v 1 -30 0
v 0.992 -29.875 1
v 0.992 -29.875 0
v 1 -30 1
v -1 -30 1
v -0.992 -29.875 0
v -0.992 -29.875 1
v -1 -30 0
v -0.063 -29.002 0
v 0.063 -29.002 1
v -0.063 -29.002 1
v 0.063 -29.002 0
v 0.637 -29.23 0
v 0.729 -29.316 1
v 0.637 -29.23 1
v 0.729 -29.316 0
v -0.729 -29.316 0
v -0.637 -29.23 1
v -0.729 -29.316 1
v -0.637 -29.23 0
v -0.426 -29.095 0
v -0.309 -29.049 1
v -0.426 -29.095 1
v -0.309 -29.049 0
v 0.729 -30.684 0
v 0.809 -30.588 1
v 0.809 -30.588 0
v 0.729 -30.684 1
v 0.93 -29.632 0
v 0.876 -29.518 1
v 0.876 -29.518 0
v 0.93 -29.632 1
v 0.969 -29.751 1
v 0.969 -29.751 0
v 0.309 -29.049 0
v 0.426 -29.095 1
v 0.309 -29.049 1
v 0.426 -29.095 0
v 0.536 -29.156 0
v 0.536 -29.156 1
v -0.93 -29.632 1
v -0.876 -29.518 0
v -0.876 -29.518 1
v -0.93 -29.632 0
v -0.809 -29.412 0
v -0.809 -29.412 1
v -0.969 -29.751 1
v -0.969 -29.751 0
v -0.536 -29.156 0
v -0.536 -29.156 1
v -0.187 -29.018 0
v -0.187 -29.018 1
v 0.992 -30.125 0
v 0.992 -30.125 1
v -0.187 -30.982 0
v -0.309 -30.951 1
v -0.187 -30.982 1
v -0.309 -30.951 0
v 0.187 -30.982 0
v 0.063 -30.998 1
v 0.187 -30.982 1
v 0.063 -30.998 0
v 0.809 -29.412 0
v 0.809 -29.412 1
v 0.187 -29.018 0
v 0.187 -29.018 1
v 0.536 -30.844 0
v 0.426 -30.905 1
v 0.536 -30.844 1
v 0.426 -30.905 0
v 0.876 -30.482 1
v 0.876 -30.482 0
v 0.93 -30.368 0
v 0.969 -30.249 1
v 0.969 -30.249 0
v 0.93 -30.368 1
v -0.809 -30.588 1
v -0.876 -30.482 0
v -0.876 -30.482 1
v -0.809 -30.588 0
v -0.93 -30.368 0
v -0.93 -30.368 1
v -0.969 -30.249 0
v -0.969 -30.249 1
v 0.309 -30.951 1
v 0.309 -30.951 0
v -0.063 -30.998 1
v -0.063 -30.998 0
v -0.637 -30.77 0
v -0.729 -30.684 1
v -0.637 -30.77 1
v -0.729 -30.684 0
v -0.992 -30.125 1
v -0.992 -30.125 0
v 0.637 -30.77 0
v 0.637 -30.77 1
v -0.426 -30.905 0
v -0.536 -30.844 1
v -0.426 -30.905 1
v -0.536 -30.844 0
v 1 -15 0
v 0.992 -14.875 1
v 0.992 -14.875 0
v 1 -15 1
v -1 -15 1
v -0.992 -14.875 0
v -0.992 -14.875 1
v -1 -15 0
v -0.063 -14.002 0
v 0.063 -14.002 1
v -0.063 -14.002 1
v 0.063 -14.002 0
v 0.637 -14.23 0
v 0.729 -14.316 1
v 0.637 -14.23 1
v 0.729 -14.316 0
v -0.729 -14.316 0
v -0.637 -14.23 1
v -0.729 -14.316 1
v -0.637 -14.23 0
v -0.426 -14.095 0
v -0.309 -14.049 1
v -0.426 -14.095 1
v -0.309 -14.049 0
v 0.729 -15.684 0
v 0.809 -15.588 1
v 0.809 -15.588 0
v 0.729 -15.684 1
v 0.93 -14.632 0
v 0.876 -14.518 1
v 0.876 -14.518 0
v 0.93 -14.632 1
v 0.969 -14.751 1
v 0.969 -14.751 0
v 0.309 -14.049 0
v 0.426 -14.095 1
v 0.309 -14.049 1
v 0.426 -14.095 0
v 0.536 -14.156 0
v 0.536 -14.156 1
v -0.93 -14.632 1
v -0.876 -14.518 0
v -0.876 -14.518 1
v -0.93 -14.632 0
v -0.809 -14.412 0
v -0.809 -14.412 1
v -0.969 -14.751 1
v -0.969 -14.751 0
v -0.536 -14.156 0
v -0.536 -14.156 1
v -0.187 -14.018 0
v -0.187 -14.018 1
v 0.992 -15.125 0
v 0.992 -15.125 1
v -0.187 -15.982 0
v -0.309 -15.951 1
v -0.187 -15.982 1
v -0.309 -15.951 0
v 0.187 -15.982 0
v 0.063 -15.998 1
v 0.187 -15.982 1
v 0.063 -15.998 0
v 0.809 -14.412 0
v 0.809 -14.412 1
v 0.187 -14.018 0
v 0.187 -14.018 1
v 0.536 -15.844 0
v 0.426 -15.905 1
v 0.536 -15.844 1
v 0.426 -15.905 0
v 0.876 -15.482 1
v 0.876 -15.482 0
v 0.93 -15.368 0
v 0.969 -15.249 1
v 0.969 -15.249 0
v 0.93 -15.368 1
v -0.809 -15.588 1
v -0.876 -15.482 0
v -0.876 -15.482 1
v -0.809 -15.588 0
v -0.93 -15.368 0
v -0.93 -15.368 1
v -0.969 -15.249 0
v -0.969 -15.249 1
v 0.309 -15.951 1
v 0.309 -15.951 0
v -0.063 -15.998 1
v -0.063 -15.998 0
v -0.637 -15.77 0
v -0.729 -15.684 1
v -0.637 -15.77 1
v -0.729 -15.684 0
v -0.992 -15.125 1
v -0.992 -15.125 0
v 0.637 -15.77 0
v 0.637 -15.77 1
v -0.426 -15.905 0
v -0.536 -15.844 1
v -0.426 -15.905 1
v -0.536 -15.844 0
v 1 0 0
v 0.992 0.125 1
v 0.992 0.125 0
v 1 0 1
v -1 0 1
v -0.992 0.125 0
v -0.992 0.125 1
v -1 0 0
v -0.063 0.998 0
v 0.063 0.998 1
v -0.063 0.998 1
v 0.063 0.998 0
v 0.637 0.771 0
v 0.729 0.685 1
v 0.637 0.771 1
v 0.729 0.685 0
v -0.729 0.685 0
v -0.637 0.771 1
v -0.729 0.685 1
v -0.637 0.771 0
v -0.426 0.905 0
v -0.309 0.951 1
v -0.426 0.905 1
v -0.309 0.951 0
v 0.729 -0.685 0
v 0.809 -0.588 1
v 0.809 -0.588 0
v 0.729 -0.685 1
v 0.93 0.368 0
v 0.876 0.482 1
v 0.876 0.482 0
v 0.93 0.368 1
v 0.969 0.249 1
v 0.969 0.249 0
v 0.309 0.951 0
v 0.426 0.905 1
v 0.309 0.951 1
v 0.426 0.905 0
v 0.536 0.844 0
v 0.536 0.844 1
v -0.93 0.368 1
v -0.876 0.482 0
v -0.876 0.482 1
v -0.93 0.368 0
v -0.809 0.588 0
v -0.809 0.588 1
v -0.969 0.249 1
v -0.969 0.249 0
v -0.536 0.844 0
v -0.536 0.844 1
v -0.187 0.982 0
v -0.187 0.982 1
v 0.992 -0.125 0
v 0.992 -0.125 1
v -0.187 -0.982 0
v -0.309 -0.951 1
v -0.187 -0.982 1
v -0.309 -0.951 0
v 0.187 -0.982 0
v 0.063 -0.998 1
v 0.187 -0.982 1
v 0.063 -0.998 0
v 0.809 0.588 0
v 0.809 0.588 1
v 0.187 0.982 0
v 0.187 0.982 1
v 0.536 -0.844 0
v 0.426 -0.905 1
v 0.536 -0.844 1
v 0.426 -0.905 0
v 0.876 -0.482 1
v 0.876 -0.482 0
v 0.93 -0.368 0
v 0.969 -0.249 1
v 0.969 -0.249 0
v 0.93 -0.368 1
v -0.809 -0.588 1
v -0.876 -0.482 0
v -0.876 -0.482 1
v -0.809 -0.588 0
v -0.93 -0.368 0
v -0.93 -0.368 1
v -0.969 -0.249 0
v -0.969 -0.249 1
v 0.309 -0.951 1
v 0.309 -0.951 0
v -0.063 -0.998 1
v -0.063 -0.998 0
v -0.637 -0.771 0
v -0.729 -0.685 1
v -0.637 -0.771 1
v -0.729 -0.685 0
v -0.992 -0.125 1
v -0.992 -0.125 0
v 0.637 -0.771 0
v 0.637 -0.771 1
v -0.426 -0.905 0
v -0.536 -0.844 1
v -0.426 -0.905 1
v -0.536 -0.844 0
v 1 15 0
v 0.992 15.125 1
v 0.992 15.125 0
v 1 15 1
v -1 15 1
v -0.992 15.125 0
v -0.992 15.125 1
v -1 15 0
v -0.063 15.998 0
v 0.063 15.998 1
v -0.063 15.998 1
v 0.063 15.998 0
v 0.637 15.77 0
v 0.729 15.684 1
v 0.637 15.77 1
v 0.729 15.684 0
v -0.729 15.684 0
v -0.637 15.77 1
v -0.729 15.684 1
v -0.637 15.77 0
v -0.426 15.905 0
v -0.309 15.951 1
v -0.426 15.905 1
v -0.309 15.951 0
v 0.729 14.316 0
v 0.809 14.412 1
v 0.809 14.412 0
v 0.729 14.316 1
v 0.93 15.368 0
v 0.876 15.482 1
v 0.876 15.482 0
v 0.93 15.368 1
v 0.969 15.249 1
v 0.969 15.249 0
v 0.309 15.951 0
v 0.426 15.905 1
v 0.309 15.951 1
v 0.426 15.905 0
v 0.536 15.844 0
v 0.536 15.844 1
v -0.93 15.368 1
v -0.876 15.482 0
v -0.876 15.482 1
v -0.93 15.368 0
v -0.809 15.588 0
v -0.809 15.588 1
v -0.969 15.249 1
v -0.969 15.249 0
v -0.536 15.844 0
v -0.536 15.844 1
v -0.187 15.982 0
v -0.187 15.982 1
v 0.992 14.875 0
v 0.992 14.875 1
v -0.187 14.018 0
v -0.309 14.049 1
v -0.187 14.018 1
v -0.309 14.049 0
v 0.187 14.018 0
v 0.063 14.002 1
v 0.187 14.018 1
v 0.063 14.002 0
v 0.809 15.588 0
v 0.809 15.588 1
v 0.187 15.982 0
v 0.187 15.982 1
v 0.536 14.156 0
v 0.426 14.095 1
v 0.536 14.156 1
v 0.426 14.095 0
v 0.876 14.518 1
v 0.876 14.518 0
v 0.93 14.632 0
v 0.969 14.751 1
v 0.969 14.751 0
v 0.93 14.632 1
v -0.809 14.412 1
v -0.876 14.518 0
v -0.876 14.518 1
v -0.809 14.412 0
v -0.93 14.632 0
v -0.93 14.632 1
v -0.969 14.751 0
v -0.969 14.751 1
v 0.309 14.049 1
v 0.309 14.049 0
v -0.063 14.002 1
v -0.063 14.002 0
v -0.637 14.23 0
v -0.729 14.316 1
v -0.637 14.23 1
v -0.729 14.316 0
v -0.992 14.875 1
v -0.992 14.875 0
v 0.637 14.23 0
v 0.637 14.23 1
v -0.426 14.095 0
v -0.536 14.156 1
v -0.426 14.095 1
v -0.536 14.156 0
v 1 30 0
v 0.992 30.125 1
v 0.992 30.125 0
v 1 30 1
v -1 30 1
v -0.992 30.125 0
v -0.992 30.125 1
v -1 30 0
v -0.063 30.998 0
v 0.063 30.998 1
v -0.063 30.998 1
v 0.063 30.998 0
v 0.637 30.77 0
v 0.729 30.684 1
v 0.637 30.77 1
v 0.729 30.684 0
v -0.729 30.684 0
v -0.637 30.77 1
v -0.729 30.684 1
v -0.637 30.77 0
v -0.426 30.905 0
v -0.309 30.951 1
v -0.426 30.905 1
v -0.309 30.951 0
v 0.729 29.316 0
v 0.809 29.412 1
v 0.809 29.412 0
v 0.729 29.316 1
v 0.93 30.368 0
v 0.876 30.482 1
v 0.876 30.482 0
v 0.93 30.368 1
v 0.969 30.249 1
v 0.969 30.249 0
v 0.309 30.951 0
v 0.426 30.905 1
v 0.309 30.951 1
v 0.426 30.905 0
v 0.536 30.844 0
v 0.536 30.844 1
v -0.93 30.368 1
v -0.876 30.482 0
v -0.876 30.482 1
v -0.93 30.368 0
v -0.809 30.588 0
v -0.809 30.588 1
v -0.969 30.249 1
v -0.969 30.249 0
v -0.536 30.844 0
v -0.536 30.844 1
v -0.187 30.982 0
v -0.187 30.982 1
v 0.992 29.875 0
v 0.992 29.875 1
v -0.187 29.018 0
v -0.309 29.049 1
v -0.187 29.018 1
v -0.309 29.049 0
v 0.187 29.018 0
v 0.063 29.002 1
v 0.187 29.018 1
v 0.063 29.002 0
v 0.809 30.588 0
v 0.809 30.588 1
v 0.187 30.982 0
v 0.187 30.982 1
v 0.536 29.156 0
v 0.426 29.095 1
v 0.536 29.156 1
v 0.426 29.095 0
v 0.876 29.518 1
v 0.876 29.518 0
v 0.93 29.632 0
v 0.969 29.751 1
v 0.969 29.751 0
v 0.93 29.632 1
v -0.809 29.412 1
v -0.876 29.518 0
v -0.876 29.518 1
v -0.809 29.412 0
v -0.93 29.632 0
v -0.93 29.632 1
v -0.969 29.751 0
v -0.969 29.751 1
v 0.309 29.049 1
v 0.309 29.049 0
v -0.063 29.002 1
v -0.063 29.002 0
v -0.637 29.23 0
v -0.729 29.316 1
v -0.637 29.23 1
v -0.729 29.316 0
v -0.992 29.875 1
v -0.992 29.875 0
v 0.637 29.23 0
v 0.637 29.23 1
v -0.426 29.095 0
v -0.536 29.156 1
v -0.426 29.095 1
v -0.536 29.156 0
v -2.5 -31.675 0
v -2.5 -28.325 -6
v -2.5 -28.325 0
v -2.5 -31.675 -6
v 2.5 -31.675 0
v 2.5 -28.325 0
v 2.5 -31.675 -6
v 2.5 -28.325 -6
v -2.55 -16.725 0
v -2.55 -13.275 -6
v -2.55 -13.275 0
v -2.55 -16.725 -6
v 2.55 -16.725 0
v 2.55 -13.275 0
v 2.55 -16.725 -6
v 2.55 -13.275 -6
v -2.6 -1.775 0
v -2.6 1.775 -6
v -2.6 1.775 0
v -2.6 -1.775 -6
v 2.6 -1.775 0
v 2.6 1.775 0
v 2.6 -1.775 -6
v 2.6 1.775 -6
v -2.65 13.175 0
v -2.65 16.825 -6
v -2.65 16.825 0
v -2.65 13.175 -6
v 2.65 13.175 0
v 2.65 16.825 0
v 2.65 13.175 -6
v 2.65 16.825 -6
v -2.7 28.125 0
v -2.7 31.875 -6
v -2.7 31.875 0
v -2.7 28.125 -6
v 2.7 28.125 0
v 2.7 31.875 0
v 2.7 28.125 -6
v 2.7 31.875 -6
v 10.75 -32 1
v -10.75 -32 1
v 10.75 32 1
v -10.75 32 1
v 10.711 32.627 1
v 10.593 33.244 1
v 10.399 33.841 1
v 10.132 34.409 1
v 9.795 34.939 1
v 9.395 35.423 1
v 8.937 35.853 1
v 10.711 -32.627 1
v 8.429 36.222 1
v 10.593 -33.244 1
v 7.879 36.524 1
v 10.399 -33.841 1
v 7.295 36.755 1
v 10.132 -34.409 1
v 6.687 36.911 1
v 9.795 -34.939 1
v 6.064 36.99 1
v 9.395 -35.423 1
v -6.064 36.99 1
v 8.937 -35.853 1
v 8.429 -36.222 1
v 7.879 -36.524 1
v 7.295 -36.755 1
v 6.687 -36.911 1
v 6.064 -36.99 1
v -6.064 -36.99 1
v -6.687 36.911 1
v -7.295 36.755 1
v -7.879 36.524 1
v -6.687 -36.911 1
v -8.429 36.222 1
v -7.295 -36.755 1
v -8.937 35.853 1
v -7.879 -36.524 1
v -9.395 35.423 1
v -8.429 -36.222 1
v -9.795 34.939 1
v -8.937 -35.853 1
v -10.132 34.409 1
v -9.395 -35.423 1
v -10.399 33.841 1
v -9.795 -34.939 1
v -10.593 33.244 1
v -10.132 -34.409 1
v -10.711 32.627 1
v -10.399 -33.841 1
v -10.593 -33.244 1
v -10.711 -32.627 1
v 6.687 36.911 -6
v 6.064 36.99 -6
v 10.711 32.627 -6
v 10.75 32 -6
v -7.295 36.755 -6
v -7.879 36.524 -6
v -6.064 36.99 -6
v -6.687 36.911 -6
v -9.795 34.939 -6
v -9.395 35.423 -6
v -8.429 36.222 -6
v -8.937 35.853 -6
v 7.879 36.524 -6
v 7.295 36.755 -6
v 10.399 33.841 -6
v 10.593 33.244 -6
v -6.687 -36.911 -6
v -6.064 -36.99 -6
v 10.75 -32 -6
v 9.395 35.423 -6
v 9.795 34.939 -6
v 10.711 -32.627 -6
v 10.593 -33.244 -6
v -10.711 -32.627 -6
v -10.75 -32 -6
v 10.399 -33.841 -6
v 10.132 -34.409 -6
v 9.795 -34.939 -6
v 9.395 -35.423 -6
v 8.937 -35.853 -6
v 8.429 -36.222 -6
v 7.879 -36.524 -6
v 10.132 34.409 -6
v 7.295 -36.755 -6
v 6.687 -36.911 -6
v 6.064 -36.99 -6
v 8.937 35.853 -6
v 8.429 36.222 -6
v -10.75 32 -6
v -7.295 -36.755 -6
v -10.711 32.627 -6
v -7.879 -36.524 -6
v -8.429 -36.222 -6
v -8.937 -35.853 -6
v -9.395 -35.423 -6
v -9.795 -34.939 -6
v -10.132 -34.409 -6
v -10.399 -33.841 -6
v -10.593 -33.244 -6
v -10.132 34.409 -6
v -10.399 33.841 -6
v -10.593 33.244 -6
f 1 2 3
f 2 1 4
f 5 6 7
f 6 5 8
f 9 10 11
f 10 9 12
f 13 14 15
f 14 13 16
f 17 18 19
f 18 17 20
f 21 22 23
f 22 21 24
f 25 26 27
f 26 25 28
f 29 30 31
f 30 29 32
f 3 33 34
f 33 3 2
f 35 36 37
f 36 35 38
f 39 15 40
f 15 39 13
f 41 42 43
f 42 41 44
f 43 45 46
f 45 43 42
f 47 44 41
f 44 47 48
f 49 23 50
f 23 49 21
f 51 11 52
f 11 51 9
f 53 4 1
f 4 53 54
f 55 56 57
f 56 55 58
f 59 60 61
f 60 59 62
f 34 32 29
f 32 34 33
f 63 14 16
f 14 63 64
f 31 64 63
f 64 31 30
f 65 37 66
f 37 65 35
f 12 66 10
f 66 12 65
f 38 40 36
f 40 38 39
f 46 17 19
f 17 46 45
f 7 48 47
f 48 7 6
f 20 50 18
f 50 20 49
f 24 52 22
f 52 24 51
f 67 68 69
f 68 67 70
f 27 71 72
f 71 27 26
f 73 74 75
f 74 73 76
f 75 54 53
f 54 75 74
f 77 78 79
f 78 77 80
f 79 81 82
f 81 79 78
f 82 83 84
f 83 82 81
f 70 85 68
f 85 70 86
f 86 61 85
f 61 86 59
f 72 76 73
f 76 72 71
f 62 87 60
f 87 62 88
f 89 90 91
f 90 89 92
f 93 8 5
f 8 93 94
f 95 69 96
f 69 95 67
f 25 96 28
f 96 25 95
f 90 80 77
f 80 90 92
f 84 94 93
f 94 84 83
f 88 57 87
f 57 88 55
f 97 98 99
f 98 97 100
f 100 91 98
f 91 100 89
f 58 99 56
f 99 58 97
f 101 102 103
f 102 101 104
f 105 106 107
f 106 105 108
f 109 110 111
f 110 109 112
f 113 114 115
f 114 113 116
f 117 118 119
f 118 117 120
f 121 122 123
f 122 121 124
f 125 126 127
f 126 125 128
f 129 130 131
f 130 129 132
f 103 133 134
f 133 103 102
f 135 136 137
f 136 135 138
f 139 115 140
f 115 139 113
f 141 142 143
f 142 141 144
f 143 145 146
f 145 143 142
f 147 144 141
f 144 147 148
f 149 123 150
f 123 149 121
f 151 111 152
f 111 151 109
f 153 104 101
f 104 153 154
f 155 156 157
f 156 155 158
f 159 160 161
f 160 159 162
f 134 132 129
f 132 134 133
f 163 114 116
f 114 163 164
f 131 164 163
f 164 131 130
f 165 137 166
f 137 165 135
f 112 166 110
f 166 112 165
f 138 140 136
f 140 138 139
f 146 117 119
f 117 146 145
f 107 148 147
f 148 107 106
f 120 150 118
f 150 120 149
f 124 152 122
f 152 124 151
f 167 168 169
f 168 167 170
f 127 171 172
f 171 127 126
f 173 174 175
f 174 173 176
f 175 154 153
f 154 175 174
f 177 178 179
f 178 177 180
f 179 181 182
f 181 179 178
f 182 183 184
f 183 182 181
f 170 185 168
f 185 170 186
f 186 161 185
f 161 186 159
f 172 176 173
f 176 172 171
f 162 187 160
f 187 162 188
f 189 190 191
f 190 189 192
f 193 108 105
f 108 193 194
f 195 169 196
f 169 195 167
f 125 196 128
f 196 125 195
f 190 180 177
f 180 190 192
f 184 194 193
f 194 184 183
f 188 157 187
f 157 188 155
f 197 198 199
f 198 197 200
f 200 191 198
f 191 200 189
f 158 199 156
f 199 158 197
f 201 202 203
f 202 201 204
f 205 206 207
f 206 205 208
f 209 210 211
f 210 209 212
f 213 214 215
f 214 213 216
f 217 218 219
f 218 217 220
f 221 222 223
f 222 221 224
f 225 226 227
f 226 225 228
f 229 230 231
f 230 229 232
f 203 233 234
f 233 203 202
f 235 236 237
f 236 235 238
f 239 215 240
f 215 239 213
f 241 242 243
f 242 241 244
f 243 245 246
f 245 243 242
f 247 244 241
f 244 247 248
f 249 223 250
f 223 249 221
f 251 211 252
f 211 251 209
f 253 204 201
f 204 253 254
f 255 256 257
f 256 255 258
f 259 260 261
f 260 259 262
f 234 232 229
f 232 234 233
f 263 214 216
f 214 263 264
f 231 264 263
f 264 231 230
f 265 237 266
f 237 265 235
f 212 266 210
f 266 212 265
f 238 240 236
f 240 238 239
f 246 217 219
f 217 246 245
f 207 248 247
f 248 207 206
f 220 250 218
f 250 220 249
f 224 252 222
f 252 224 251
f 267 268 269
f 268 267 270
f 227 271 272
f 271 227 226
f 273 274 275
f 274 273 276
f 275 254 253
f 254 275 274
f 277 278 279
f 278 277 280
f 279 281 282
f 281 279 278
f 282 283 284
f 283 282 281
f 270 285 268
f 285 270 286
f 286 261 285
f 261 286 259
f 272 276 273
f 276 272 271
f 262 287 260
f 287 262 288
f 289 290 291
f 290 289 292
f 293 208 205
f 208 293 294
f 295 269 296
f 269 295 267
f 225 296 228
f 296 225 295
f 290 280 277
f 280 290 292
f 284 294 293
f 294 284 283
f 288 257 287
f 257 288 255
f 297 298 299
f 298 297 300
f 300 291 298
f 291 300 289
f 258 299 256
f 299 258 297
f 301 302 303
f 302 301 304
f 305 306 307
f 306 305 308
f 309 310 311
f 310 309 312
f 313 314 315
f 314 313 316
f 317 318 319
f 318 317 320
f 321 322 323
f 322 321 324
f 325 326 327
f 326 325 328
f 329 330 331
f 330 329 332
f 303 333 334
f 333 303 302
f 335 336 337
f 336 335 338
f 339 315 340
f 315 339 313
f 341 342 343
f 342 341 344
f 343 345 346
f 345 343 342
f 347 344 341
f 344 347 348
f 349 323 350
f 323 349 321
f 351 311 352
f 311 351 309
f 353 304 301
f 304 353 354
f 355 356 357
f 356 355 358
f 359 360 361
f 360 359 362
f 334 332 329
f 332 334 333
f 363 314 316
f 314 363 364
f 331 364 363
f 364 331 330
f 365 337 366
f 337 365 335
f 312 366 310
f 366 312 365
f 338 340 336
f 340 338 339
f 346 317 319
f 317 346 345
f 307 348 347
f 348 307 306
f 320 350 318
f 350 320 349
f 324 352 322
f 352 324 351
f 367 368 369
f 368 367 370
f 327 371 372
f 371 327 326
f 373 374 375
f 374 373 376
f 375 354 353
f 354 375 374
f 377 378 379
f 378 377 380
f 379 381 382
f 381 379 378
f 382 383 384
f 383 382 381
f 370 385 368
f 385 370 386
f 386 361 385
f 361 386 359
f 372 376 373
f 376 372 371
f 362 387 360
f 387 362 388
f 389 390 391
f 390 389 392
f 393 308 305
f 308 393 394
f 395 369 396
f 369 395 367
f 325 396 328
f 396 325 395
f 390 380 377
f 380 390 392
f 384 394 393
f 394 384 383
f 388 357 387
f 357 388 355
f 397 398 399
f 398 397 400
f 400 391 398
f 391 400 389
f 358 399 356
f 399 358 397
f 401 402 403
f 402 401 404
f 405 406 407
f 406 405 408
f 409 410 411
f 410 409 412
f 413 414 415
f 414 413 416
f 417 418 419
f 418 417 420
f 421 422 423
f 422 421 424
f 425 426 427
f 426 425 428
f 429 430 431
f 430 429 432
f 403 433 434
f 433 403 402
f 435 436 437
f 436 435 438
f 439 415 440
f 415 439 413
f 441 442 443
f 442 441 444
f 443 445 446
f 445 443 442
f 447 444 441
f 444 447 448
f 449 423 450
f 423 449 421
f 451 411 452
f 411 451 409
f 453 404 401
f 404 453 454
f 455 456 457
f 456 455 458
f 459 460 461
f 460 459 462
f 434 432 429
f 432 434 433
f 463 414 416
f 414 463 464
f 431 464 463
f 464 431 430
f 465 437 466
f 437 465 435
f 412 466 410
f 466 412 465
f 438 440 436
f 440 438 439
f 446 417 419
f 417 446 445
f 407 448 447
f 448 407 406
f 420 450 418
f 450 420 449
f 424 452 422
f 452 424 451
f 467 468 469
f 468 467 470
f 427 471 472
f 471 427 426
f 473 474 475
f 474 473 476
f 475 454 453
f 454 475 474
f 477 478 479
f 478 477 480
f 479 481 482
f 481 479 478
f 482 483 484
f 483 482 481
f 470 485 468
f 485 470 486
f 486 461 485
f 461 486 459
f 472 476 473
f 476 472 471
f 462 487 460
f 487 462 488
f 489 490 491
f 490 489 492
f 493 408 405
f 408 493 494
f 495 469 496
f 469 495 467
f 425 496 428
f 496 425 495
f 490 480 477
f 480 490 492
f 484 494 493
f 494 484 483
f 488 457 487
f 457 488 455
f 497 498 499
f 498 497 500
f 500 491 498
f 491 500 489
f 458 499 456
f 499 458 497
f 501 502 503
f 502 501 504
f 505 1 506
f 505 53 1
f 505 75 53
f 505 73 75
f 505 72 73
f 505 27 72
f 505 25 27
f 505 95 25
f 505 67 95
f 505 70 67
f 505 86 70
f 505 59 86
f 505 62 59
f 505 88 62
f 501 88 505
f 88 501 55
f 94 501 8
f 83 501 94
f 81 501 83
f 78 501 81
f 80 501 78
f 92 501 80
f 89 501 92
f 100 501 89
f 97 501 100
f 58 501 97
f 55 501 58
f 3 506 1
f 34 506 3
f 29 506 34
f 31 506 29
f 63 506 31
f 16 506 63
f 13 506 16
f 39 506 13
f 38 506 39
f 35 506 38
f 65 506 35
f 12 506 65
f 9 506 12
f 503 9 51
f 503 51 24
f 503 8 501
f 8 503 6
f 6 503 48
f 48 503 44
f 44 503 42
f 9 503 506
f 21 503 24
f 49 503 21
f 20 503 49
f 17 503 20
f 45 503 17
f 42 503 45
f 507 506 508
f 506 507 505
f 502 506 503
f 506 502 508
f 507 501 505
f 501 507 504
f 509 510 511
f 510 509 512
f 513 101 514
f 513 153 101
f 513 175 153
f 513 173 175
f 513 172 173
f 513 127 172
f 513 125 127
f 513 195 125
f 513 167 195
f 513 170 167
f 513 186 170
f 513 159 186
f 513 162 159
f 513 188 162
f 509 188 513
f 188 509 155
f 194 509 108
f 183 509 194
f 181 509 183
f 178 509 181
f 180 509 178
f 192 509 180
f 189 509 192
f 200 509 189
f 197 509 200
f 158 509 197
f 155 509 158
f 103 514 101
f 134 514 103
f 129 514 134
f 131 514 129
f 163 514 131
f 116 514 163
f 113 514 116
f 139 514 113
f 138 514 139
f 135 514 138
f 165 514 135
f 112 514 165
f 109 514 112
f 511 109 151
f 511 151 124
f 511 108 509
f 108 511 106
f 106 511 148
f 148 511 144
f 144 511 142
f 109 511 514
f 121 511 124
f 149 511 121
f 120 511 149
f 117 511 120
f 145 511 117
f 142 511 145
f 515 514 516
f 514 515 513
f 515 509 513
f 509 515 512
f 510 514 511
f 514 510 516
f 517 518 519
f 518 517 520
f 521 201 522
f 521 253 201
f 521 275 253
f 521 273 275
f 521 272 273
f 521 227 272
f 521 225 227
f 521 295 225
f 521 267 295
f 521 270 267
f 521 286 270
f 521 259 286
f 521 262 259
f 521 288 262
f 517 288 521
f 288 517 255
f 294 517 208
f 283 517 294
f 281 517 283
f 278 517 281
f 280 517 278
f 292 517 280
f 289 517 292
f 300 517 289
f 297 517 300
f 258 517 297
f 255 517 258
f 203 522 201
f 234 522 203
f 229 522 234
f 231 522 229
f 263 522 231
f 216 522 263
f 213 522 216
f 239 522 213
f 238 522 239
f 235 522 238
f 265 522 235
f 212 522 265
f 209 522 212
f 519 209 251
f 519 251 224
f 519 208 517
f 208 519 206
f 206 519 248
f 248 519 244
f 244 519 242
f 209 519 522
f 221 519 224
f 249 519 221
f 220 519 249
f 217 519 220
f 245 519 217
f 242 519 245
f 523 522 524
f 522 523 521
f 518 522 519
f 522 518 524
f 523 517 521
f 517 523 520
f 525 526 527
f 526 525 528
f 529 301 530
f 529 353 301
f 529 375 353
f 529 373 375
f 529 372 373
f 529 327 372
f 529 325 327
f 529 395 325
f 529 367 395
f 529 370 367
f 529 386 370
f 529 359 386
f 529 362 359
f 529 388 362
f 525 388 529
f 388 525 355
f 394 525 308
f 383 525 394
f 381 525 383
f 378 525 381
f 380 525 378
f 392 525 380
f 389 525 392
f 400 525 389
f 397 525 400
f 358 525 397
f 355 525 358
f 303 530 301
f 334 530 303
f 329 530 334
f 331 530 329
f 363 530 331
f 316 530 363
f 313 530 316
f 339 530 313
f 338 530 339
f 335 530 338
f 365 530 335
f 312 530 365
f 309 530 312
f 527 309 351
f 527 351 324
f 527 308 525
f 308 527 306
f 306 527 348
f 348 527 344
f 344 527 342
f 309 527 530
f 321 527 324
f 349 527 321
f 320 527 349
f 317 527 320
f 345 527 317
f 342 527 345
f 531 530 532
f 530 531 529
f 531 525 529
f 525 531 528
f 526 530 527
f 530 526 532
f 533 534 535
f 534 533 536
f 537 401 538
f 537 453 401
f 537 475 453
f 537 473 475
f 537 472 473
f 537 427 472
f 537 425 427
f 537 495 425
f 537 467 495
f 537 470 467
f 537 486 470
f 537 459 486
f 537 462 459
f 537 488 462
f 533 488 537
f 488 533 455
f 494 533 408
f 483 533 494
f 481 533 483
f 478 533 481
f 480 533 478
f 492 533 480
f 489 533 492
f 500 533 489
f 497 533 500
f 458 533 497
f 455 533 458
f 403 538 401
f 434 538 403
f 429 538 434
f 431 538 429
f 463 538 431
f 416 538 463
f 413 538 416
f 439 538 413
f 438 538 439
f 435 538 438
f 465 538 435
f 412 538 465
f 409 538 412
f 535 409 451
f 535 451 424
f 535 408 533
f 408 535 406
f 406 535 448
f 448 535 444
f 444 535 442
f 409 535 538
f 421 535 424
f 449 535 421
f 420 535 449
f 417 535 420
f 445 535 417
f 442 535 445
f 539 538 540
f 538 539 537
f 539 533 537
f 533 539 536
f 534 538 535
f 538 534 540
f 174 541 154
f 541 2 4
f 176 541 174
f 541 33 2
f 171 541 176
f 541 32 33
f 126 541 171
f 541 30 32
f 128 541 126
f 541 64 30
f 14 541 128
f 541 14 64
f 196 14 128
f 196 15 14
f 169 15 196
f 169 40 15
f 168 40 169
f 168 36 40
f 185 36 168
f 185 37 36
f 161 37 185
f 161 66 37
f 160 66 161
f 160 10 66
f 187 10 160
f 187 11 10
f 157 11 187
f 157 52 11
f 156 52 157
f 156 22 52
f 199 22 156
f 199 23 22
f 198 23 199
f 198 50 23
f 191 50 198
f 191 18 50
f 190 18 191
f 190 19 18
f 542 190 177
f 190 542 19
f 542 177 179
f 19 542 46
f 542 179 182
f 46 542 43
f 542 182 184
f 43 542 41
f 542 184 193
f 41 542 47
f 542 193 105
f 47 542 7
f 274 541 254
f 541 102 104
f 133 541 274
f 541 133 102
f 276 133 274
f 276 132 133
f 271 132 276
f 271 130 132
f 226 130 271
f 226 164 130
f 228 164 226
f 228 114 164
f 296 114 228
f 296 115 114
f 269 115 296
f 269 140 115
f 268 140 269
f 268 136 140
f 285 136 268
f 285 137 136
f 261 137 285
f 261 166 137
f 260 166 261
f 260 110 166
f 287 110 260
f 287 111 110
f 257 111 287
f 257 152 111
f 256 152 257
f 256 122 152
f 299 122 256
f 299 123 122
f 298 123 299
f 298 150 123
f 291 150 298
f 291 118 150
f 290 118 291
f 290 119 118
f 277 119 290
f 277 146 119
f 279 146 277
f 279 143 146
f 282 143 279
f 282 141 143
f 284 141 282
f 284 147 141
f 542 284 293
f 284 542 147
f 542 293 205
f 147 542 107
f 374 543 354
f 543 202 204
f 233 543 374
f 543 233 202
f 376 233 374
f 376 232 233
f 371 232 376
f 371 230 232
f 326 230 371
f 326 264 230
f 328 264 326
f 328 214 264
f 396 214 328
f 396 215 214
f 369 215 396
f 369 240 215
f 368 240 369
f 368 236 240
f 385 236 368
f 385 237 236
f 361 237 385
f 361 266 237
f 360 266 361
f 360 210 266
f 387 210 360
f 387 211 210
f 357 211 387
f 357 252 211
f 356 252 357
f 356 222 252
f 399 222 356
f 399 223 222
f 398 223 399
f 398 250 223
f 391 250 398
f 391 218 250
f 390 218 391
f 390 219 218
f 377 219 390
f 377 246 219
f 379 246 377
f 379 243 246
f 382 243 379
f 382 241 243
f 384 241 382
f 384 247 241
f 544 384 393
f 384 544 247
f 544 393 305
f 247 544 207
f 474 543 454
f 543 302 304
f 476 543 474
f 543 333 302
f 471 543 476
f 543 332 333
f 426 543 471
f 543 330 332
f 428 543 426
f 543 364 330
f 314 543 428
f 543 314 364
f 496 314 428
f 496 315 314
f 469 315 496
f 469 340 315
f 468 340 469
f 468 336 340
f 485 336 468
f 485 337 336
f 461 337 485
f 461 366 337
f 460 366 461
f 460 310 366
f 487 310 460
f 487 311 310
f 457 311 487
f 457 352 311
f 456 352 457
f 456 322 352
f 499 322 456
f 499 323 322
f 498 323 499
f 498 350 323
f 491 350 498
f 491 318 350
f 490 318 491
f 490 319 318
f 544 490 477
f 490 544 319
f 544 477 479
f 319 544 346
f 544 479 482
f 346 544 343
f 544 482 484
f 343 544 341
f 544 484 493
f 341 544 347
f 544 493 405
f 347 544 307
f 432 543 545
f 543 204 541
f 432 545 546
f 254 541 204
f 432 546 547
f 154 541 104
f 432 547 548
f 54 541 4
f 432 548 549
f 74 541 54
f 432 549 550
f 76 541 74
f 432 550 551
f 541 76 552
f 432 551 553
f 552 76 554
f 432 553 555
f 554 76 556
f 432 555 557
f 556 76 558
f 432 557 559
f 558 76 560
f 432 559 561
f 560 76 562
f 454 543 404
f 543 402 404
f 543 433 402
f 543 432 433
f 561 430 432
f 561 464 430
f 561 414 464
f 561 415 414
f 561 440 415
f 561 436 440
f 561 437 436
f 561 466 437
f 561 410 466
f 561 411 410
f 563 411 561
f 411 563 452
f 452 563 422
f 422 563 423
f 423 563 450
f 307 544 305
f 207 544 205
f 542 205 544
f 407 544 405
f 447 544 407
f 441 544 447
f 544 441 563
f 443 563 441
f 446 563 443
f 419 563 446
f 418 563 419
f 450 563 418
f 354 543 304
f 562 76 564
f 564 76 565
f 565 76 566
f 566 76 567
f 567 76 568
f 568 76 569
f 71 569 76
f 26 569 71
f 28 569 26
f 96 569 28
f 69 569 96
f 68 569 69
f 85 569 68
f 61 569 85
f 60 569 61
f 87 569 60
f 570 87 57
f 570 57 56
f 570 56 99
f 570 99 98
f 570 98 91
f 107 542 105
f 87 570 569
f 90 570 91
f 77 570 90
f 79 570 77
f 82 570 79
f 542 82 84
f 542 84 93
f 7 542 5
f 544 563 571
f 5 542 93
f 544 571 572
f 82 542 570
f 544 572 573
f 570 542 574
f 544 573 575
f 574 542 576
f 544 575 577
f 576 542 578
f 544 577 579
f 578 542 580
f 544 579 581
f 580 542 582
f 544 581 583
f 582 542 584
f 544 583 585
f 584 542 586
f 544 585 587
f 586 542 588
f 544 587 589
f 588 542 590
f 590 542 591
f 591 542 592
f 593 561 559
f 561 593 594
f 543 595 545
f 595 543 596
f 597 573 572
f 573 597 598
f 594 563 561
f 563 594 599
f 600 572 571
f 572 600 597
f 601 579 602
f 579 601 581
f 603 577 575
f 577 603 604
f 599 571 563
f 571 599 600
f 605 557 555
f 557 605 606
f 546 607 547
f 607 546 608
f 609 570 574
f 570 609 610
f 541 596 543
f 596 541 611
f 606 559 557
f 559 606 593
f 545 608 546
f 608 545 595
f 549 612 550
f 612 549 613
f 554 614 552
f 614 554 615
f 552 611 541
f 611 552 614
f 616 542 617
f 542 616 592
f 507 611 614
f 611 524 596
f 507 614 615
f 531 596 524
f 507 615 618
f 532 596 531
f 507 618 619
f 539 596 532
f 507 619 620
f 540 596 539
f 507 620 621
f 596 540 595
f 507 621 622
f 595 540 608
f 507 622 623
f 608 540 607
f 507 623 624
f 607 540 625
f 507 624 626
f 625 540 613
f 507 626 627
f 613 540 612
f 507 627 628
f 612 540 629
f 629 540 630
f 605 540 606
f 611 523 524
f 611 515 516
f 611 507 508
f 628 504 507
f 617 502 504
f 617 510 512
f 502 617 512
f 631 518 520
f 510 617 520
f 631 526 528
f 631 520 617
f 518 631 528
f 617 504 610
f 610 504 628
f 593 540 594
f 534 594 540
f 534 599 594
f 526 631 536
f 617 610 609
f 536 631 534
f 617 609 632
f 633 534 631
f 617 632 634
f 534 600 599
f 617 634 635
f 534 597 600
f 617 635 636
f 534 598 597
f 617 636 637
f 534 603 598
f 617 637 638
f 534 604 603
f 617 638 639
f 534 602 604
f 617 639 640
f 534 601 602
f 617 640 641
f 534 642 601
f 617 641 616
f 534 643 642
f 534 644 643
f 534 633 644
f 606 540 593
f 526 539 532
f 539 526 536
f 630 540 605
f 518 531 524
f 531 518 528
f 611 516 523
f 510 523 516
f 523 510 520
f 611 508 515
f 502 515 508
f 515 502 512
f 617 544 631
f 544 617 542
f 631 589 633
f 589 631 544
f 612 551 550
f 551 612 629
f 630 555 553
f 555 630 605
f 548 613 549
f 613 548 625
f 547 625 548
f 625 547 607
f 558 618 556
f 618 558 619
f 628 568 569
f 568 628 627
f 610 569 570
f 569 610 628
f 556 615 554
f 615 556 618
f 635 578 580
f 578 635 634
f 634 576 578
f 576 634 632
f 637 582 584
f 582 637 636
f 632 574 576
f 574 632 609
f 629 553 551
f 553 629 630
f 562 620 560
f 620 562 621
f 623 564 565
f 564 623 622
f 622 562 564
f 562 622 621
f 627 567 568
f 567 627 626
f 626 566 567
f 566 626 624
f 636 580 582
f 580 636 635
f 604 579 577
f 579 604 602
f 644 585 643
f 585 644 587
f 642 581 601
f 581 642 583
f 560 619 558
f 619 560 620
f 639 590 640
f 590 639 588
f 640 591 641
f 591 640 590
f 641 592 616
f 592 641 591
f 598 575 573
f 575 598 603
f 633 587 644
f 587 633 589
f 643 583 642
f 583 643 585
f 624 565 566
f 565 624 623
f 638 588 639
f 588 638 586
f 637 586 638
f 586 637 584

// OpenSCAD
$fn = 50;


difference() {
	union() {
		translate(v = [0, 0, -6]) {
			hull() {
				translate(v = [-5.7500000000, 32.0000000000, 0]) {
					cylinder(h = 7, r = 5);
				}
				translate(v = [5.7500000000, 32.0000000000, 0]) {
					cylinder(h = 7, r = 5);
				}
				translate(v = [-5.7500000000, -32.0000000000, 0]) {
					cylinder(h = 7, r = 5);
				}
				translate(v = [5.7500000000, -32.0000000000, 0]) {
					cylinder(h = 7, r = 5);
				}
			}
		}
	}
	union() {
		translate(v = [0, -30, 2]) {
			rotate(a = [0, 0, 0]) {
				difference() {
					union() {
						translate(v = [0, 0, -12.0000000000]) {
							cylinder(h = 12, r = 0.7500000000);
						}
						translate(v = [0, 0, -12.0000000000]) {
							cylinder(h = 12, r = 1.0000000000);
						}
						cylinder(h = 1.3000000000, r = 2.5000000000);
						translate(v = [0, 0, -12.0000000000]) {
							cylinder(h = 12, r = 0.7500000000);
						}
					}
					union();
				}
			}
		}
		translate(v = [0, -15, 2]) {
			rotate(a = [0, 0, 0]) {
				difference() {
					union() {
						translate(v = [0, 0, -12.0000000000]) {
							cylinder(h = 12, r = 0.7500000000);
						}
						translate(v = [0, 0, -12.0000000000]) {
							cylinder(h = 12, r = 1.0000000000);
						}
						cylinder(h = 1.3000000000, r = 2.5000000000);
						translate(v = [0, 0, -12.0000000000]) {
							cylinder(h = 12, r = 0.7500000000);
						}
					}
					union();
				}
			}
		}
		translate(v = [0, 0, 2]) {
			rotate(a = [0, 0, 0]) {
				difference() {
					union() {
						translate(v = [0, 0, -12.0000000000]) {
							cylinder(h = 12, r = 0.7500000000);
						}
						translate(v = [0, 0, -12.0000000000]) {
							cylinder(h = 12, r = 1.0000000000);
						}
						cylinder(h = 1.3000000000, r = 2.5000000000);
						translate(v = [0, 0, -12.0000000000]) {
							cylinder(h = 12, r = 0.7500000000);
						}
					}
					union();
				}
			}
		}
		translate(v = [0, 15, 2]) {
			rotate(a = [0, 0, 0]) {
				difference() {
					union() {
						translate(v = [0, 0, -12.0000000000]) {
							cylinder(h = 12, r = 0.7500000000);
						}
						translate(v = [0, 0, -12.0000000000]) {
							cylinder(h = 12, r = 1.0000000000);
						}
						cylinder(h = 1.3000000000, r = 2.5000000000);
						translate(v = [0, 0, -12.0000000000]) {
							cylinder(h = 12, r = 0.7500000000);
						}
					}
					union();
				}
			}
		}
		translate(v = [0, 30, 2]) {
			rotate(a = [0, 0, 0]) {
				difference() {
					union() {
						translate(v = [0, 0, -12.0000000000]) {
							cylinder(h = 12, r = 0.7500000000);
						}
						translate(v = [0, 0, -12.0000000000]) {
							cylinder(h = 12, r = 1.0000000000);
						}
						cylinder(h = 1.3000000000, r = 2.5000000000);
						translate(v = [0, 0, -12.0000000000]) {
							cylinder(h = 12, r = 0.7500000000);
						}
					}
					union();
				}
			}
		}
		translate(v = [-2.5000000000, -31.6750000000, -50]) {
			cube(size = [5.0000000000, 3.3500000000, 50]);
		}
		translate(v = [-2.5500000000, -16.7250000000, -50]) {
			cube(size = [5.1000000000, 3.4500000000, 50]);
		}
		translate(v = [-2.6000000000, -1.7750000000, -50]) {
			cube(size = [5.2000000000, 3.5500000000, 50]);
		}
		translate(v = [-2.6500000000, 13.1750000000, -50]) {
			cube(size = [5.3000000000, 3.6500000000, 50]);
		}
		translate(v = [-2.7000000000, 28.1250000000, -50]) {
			cube(size = [5.4000000000, 3.7500000000, 50]);
		}
	}
}
